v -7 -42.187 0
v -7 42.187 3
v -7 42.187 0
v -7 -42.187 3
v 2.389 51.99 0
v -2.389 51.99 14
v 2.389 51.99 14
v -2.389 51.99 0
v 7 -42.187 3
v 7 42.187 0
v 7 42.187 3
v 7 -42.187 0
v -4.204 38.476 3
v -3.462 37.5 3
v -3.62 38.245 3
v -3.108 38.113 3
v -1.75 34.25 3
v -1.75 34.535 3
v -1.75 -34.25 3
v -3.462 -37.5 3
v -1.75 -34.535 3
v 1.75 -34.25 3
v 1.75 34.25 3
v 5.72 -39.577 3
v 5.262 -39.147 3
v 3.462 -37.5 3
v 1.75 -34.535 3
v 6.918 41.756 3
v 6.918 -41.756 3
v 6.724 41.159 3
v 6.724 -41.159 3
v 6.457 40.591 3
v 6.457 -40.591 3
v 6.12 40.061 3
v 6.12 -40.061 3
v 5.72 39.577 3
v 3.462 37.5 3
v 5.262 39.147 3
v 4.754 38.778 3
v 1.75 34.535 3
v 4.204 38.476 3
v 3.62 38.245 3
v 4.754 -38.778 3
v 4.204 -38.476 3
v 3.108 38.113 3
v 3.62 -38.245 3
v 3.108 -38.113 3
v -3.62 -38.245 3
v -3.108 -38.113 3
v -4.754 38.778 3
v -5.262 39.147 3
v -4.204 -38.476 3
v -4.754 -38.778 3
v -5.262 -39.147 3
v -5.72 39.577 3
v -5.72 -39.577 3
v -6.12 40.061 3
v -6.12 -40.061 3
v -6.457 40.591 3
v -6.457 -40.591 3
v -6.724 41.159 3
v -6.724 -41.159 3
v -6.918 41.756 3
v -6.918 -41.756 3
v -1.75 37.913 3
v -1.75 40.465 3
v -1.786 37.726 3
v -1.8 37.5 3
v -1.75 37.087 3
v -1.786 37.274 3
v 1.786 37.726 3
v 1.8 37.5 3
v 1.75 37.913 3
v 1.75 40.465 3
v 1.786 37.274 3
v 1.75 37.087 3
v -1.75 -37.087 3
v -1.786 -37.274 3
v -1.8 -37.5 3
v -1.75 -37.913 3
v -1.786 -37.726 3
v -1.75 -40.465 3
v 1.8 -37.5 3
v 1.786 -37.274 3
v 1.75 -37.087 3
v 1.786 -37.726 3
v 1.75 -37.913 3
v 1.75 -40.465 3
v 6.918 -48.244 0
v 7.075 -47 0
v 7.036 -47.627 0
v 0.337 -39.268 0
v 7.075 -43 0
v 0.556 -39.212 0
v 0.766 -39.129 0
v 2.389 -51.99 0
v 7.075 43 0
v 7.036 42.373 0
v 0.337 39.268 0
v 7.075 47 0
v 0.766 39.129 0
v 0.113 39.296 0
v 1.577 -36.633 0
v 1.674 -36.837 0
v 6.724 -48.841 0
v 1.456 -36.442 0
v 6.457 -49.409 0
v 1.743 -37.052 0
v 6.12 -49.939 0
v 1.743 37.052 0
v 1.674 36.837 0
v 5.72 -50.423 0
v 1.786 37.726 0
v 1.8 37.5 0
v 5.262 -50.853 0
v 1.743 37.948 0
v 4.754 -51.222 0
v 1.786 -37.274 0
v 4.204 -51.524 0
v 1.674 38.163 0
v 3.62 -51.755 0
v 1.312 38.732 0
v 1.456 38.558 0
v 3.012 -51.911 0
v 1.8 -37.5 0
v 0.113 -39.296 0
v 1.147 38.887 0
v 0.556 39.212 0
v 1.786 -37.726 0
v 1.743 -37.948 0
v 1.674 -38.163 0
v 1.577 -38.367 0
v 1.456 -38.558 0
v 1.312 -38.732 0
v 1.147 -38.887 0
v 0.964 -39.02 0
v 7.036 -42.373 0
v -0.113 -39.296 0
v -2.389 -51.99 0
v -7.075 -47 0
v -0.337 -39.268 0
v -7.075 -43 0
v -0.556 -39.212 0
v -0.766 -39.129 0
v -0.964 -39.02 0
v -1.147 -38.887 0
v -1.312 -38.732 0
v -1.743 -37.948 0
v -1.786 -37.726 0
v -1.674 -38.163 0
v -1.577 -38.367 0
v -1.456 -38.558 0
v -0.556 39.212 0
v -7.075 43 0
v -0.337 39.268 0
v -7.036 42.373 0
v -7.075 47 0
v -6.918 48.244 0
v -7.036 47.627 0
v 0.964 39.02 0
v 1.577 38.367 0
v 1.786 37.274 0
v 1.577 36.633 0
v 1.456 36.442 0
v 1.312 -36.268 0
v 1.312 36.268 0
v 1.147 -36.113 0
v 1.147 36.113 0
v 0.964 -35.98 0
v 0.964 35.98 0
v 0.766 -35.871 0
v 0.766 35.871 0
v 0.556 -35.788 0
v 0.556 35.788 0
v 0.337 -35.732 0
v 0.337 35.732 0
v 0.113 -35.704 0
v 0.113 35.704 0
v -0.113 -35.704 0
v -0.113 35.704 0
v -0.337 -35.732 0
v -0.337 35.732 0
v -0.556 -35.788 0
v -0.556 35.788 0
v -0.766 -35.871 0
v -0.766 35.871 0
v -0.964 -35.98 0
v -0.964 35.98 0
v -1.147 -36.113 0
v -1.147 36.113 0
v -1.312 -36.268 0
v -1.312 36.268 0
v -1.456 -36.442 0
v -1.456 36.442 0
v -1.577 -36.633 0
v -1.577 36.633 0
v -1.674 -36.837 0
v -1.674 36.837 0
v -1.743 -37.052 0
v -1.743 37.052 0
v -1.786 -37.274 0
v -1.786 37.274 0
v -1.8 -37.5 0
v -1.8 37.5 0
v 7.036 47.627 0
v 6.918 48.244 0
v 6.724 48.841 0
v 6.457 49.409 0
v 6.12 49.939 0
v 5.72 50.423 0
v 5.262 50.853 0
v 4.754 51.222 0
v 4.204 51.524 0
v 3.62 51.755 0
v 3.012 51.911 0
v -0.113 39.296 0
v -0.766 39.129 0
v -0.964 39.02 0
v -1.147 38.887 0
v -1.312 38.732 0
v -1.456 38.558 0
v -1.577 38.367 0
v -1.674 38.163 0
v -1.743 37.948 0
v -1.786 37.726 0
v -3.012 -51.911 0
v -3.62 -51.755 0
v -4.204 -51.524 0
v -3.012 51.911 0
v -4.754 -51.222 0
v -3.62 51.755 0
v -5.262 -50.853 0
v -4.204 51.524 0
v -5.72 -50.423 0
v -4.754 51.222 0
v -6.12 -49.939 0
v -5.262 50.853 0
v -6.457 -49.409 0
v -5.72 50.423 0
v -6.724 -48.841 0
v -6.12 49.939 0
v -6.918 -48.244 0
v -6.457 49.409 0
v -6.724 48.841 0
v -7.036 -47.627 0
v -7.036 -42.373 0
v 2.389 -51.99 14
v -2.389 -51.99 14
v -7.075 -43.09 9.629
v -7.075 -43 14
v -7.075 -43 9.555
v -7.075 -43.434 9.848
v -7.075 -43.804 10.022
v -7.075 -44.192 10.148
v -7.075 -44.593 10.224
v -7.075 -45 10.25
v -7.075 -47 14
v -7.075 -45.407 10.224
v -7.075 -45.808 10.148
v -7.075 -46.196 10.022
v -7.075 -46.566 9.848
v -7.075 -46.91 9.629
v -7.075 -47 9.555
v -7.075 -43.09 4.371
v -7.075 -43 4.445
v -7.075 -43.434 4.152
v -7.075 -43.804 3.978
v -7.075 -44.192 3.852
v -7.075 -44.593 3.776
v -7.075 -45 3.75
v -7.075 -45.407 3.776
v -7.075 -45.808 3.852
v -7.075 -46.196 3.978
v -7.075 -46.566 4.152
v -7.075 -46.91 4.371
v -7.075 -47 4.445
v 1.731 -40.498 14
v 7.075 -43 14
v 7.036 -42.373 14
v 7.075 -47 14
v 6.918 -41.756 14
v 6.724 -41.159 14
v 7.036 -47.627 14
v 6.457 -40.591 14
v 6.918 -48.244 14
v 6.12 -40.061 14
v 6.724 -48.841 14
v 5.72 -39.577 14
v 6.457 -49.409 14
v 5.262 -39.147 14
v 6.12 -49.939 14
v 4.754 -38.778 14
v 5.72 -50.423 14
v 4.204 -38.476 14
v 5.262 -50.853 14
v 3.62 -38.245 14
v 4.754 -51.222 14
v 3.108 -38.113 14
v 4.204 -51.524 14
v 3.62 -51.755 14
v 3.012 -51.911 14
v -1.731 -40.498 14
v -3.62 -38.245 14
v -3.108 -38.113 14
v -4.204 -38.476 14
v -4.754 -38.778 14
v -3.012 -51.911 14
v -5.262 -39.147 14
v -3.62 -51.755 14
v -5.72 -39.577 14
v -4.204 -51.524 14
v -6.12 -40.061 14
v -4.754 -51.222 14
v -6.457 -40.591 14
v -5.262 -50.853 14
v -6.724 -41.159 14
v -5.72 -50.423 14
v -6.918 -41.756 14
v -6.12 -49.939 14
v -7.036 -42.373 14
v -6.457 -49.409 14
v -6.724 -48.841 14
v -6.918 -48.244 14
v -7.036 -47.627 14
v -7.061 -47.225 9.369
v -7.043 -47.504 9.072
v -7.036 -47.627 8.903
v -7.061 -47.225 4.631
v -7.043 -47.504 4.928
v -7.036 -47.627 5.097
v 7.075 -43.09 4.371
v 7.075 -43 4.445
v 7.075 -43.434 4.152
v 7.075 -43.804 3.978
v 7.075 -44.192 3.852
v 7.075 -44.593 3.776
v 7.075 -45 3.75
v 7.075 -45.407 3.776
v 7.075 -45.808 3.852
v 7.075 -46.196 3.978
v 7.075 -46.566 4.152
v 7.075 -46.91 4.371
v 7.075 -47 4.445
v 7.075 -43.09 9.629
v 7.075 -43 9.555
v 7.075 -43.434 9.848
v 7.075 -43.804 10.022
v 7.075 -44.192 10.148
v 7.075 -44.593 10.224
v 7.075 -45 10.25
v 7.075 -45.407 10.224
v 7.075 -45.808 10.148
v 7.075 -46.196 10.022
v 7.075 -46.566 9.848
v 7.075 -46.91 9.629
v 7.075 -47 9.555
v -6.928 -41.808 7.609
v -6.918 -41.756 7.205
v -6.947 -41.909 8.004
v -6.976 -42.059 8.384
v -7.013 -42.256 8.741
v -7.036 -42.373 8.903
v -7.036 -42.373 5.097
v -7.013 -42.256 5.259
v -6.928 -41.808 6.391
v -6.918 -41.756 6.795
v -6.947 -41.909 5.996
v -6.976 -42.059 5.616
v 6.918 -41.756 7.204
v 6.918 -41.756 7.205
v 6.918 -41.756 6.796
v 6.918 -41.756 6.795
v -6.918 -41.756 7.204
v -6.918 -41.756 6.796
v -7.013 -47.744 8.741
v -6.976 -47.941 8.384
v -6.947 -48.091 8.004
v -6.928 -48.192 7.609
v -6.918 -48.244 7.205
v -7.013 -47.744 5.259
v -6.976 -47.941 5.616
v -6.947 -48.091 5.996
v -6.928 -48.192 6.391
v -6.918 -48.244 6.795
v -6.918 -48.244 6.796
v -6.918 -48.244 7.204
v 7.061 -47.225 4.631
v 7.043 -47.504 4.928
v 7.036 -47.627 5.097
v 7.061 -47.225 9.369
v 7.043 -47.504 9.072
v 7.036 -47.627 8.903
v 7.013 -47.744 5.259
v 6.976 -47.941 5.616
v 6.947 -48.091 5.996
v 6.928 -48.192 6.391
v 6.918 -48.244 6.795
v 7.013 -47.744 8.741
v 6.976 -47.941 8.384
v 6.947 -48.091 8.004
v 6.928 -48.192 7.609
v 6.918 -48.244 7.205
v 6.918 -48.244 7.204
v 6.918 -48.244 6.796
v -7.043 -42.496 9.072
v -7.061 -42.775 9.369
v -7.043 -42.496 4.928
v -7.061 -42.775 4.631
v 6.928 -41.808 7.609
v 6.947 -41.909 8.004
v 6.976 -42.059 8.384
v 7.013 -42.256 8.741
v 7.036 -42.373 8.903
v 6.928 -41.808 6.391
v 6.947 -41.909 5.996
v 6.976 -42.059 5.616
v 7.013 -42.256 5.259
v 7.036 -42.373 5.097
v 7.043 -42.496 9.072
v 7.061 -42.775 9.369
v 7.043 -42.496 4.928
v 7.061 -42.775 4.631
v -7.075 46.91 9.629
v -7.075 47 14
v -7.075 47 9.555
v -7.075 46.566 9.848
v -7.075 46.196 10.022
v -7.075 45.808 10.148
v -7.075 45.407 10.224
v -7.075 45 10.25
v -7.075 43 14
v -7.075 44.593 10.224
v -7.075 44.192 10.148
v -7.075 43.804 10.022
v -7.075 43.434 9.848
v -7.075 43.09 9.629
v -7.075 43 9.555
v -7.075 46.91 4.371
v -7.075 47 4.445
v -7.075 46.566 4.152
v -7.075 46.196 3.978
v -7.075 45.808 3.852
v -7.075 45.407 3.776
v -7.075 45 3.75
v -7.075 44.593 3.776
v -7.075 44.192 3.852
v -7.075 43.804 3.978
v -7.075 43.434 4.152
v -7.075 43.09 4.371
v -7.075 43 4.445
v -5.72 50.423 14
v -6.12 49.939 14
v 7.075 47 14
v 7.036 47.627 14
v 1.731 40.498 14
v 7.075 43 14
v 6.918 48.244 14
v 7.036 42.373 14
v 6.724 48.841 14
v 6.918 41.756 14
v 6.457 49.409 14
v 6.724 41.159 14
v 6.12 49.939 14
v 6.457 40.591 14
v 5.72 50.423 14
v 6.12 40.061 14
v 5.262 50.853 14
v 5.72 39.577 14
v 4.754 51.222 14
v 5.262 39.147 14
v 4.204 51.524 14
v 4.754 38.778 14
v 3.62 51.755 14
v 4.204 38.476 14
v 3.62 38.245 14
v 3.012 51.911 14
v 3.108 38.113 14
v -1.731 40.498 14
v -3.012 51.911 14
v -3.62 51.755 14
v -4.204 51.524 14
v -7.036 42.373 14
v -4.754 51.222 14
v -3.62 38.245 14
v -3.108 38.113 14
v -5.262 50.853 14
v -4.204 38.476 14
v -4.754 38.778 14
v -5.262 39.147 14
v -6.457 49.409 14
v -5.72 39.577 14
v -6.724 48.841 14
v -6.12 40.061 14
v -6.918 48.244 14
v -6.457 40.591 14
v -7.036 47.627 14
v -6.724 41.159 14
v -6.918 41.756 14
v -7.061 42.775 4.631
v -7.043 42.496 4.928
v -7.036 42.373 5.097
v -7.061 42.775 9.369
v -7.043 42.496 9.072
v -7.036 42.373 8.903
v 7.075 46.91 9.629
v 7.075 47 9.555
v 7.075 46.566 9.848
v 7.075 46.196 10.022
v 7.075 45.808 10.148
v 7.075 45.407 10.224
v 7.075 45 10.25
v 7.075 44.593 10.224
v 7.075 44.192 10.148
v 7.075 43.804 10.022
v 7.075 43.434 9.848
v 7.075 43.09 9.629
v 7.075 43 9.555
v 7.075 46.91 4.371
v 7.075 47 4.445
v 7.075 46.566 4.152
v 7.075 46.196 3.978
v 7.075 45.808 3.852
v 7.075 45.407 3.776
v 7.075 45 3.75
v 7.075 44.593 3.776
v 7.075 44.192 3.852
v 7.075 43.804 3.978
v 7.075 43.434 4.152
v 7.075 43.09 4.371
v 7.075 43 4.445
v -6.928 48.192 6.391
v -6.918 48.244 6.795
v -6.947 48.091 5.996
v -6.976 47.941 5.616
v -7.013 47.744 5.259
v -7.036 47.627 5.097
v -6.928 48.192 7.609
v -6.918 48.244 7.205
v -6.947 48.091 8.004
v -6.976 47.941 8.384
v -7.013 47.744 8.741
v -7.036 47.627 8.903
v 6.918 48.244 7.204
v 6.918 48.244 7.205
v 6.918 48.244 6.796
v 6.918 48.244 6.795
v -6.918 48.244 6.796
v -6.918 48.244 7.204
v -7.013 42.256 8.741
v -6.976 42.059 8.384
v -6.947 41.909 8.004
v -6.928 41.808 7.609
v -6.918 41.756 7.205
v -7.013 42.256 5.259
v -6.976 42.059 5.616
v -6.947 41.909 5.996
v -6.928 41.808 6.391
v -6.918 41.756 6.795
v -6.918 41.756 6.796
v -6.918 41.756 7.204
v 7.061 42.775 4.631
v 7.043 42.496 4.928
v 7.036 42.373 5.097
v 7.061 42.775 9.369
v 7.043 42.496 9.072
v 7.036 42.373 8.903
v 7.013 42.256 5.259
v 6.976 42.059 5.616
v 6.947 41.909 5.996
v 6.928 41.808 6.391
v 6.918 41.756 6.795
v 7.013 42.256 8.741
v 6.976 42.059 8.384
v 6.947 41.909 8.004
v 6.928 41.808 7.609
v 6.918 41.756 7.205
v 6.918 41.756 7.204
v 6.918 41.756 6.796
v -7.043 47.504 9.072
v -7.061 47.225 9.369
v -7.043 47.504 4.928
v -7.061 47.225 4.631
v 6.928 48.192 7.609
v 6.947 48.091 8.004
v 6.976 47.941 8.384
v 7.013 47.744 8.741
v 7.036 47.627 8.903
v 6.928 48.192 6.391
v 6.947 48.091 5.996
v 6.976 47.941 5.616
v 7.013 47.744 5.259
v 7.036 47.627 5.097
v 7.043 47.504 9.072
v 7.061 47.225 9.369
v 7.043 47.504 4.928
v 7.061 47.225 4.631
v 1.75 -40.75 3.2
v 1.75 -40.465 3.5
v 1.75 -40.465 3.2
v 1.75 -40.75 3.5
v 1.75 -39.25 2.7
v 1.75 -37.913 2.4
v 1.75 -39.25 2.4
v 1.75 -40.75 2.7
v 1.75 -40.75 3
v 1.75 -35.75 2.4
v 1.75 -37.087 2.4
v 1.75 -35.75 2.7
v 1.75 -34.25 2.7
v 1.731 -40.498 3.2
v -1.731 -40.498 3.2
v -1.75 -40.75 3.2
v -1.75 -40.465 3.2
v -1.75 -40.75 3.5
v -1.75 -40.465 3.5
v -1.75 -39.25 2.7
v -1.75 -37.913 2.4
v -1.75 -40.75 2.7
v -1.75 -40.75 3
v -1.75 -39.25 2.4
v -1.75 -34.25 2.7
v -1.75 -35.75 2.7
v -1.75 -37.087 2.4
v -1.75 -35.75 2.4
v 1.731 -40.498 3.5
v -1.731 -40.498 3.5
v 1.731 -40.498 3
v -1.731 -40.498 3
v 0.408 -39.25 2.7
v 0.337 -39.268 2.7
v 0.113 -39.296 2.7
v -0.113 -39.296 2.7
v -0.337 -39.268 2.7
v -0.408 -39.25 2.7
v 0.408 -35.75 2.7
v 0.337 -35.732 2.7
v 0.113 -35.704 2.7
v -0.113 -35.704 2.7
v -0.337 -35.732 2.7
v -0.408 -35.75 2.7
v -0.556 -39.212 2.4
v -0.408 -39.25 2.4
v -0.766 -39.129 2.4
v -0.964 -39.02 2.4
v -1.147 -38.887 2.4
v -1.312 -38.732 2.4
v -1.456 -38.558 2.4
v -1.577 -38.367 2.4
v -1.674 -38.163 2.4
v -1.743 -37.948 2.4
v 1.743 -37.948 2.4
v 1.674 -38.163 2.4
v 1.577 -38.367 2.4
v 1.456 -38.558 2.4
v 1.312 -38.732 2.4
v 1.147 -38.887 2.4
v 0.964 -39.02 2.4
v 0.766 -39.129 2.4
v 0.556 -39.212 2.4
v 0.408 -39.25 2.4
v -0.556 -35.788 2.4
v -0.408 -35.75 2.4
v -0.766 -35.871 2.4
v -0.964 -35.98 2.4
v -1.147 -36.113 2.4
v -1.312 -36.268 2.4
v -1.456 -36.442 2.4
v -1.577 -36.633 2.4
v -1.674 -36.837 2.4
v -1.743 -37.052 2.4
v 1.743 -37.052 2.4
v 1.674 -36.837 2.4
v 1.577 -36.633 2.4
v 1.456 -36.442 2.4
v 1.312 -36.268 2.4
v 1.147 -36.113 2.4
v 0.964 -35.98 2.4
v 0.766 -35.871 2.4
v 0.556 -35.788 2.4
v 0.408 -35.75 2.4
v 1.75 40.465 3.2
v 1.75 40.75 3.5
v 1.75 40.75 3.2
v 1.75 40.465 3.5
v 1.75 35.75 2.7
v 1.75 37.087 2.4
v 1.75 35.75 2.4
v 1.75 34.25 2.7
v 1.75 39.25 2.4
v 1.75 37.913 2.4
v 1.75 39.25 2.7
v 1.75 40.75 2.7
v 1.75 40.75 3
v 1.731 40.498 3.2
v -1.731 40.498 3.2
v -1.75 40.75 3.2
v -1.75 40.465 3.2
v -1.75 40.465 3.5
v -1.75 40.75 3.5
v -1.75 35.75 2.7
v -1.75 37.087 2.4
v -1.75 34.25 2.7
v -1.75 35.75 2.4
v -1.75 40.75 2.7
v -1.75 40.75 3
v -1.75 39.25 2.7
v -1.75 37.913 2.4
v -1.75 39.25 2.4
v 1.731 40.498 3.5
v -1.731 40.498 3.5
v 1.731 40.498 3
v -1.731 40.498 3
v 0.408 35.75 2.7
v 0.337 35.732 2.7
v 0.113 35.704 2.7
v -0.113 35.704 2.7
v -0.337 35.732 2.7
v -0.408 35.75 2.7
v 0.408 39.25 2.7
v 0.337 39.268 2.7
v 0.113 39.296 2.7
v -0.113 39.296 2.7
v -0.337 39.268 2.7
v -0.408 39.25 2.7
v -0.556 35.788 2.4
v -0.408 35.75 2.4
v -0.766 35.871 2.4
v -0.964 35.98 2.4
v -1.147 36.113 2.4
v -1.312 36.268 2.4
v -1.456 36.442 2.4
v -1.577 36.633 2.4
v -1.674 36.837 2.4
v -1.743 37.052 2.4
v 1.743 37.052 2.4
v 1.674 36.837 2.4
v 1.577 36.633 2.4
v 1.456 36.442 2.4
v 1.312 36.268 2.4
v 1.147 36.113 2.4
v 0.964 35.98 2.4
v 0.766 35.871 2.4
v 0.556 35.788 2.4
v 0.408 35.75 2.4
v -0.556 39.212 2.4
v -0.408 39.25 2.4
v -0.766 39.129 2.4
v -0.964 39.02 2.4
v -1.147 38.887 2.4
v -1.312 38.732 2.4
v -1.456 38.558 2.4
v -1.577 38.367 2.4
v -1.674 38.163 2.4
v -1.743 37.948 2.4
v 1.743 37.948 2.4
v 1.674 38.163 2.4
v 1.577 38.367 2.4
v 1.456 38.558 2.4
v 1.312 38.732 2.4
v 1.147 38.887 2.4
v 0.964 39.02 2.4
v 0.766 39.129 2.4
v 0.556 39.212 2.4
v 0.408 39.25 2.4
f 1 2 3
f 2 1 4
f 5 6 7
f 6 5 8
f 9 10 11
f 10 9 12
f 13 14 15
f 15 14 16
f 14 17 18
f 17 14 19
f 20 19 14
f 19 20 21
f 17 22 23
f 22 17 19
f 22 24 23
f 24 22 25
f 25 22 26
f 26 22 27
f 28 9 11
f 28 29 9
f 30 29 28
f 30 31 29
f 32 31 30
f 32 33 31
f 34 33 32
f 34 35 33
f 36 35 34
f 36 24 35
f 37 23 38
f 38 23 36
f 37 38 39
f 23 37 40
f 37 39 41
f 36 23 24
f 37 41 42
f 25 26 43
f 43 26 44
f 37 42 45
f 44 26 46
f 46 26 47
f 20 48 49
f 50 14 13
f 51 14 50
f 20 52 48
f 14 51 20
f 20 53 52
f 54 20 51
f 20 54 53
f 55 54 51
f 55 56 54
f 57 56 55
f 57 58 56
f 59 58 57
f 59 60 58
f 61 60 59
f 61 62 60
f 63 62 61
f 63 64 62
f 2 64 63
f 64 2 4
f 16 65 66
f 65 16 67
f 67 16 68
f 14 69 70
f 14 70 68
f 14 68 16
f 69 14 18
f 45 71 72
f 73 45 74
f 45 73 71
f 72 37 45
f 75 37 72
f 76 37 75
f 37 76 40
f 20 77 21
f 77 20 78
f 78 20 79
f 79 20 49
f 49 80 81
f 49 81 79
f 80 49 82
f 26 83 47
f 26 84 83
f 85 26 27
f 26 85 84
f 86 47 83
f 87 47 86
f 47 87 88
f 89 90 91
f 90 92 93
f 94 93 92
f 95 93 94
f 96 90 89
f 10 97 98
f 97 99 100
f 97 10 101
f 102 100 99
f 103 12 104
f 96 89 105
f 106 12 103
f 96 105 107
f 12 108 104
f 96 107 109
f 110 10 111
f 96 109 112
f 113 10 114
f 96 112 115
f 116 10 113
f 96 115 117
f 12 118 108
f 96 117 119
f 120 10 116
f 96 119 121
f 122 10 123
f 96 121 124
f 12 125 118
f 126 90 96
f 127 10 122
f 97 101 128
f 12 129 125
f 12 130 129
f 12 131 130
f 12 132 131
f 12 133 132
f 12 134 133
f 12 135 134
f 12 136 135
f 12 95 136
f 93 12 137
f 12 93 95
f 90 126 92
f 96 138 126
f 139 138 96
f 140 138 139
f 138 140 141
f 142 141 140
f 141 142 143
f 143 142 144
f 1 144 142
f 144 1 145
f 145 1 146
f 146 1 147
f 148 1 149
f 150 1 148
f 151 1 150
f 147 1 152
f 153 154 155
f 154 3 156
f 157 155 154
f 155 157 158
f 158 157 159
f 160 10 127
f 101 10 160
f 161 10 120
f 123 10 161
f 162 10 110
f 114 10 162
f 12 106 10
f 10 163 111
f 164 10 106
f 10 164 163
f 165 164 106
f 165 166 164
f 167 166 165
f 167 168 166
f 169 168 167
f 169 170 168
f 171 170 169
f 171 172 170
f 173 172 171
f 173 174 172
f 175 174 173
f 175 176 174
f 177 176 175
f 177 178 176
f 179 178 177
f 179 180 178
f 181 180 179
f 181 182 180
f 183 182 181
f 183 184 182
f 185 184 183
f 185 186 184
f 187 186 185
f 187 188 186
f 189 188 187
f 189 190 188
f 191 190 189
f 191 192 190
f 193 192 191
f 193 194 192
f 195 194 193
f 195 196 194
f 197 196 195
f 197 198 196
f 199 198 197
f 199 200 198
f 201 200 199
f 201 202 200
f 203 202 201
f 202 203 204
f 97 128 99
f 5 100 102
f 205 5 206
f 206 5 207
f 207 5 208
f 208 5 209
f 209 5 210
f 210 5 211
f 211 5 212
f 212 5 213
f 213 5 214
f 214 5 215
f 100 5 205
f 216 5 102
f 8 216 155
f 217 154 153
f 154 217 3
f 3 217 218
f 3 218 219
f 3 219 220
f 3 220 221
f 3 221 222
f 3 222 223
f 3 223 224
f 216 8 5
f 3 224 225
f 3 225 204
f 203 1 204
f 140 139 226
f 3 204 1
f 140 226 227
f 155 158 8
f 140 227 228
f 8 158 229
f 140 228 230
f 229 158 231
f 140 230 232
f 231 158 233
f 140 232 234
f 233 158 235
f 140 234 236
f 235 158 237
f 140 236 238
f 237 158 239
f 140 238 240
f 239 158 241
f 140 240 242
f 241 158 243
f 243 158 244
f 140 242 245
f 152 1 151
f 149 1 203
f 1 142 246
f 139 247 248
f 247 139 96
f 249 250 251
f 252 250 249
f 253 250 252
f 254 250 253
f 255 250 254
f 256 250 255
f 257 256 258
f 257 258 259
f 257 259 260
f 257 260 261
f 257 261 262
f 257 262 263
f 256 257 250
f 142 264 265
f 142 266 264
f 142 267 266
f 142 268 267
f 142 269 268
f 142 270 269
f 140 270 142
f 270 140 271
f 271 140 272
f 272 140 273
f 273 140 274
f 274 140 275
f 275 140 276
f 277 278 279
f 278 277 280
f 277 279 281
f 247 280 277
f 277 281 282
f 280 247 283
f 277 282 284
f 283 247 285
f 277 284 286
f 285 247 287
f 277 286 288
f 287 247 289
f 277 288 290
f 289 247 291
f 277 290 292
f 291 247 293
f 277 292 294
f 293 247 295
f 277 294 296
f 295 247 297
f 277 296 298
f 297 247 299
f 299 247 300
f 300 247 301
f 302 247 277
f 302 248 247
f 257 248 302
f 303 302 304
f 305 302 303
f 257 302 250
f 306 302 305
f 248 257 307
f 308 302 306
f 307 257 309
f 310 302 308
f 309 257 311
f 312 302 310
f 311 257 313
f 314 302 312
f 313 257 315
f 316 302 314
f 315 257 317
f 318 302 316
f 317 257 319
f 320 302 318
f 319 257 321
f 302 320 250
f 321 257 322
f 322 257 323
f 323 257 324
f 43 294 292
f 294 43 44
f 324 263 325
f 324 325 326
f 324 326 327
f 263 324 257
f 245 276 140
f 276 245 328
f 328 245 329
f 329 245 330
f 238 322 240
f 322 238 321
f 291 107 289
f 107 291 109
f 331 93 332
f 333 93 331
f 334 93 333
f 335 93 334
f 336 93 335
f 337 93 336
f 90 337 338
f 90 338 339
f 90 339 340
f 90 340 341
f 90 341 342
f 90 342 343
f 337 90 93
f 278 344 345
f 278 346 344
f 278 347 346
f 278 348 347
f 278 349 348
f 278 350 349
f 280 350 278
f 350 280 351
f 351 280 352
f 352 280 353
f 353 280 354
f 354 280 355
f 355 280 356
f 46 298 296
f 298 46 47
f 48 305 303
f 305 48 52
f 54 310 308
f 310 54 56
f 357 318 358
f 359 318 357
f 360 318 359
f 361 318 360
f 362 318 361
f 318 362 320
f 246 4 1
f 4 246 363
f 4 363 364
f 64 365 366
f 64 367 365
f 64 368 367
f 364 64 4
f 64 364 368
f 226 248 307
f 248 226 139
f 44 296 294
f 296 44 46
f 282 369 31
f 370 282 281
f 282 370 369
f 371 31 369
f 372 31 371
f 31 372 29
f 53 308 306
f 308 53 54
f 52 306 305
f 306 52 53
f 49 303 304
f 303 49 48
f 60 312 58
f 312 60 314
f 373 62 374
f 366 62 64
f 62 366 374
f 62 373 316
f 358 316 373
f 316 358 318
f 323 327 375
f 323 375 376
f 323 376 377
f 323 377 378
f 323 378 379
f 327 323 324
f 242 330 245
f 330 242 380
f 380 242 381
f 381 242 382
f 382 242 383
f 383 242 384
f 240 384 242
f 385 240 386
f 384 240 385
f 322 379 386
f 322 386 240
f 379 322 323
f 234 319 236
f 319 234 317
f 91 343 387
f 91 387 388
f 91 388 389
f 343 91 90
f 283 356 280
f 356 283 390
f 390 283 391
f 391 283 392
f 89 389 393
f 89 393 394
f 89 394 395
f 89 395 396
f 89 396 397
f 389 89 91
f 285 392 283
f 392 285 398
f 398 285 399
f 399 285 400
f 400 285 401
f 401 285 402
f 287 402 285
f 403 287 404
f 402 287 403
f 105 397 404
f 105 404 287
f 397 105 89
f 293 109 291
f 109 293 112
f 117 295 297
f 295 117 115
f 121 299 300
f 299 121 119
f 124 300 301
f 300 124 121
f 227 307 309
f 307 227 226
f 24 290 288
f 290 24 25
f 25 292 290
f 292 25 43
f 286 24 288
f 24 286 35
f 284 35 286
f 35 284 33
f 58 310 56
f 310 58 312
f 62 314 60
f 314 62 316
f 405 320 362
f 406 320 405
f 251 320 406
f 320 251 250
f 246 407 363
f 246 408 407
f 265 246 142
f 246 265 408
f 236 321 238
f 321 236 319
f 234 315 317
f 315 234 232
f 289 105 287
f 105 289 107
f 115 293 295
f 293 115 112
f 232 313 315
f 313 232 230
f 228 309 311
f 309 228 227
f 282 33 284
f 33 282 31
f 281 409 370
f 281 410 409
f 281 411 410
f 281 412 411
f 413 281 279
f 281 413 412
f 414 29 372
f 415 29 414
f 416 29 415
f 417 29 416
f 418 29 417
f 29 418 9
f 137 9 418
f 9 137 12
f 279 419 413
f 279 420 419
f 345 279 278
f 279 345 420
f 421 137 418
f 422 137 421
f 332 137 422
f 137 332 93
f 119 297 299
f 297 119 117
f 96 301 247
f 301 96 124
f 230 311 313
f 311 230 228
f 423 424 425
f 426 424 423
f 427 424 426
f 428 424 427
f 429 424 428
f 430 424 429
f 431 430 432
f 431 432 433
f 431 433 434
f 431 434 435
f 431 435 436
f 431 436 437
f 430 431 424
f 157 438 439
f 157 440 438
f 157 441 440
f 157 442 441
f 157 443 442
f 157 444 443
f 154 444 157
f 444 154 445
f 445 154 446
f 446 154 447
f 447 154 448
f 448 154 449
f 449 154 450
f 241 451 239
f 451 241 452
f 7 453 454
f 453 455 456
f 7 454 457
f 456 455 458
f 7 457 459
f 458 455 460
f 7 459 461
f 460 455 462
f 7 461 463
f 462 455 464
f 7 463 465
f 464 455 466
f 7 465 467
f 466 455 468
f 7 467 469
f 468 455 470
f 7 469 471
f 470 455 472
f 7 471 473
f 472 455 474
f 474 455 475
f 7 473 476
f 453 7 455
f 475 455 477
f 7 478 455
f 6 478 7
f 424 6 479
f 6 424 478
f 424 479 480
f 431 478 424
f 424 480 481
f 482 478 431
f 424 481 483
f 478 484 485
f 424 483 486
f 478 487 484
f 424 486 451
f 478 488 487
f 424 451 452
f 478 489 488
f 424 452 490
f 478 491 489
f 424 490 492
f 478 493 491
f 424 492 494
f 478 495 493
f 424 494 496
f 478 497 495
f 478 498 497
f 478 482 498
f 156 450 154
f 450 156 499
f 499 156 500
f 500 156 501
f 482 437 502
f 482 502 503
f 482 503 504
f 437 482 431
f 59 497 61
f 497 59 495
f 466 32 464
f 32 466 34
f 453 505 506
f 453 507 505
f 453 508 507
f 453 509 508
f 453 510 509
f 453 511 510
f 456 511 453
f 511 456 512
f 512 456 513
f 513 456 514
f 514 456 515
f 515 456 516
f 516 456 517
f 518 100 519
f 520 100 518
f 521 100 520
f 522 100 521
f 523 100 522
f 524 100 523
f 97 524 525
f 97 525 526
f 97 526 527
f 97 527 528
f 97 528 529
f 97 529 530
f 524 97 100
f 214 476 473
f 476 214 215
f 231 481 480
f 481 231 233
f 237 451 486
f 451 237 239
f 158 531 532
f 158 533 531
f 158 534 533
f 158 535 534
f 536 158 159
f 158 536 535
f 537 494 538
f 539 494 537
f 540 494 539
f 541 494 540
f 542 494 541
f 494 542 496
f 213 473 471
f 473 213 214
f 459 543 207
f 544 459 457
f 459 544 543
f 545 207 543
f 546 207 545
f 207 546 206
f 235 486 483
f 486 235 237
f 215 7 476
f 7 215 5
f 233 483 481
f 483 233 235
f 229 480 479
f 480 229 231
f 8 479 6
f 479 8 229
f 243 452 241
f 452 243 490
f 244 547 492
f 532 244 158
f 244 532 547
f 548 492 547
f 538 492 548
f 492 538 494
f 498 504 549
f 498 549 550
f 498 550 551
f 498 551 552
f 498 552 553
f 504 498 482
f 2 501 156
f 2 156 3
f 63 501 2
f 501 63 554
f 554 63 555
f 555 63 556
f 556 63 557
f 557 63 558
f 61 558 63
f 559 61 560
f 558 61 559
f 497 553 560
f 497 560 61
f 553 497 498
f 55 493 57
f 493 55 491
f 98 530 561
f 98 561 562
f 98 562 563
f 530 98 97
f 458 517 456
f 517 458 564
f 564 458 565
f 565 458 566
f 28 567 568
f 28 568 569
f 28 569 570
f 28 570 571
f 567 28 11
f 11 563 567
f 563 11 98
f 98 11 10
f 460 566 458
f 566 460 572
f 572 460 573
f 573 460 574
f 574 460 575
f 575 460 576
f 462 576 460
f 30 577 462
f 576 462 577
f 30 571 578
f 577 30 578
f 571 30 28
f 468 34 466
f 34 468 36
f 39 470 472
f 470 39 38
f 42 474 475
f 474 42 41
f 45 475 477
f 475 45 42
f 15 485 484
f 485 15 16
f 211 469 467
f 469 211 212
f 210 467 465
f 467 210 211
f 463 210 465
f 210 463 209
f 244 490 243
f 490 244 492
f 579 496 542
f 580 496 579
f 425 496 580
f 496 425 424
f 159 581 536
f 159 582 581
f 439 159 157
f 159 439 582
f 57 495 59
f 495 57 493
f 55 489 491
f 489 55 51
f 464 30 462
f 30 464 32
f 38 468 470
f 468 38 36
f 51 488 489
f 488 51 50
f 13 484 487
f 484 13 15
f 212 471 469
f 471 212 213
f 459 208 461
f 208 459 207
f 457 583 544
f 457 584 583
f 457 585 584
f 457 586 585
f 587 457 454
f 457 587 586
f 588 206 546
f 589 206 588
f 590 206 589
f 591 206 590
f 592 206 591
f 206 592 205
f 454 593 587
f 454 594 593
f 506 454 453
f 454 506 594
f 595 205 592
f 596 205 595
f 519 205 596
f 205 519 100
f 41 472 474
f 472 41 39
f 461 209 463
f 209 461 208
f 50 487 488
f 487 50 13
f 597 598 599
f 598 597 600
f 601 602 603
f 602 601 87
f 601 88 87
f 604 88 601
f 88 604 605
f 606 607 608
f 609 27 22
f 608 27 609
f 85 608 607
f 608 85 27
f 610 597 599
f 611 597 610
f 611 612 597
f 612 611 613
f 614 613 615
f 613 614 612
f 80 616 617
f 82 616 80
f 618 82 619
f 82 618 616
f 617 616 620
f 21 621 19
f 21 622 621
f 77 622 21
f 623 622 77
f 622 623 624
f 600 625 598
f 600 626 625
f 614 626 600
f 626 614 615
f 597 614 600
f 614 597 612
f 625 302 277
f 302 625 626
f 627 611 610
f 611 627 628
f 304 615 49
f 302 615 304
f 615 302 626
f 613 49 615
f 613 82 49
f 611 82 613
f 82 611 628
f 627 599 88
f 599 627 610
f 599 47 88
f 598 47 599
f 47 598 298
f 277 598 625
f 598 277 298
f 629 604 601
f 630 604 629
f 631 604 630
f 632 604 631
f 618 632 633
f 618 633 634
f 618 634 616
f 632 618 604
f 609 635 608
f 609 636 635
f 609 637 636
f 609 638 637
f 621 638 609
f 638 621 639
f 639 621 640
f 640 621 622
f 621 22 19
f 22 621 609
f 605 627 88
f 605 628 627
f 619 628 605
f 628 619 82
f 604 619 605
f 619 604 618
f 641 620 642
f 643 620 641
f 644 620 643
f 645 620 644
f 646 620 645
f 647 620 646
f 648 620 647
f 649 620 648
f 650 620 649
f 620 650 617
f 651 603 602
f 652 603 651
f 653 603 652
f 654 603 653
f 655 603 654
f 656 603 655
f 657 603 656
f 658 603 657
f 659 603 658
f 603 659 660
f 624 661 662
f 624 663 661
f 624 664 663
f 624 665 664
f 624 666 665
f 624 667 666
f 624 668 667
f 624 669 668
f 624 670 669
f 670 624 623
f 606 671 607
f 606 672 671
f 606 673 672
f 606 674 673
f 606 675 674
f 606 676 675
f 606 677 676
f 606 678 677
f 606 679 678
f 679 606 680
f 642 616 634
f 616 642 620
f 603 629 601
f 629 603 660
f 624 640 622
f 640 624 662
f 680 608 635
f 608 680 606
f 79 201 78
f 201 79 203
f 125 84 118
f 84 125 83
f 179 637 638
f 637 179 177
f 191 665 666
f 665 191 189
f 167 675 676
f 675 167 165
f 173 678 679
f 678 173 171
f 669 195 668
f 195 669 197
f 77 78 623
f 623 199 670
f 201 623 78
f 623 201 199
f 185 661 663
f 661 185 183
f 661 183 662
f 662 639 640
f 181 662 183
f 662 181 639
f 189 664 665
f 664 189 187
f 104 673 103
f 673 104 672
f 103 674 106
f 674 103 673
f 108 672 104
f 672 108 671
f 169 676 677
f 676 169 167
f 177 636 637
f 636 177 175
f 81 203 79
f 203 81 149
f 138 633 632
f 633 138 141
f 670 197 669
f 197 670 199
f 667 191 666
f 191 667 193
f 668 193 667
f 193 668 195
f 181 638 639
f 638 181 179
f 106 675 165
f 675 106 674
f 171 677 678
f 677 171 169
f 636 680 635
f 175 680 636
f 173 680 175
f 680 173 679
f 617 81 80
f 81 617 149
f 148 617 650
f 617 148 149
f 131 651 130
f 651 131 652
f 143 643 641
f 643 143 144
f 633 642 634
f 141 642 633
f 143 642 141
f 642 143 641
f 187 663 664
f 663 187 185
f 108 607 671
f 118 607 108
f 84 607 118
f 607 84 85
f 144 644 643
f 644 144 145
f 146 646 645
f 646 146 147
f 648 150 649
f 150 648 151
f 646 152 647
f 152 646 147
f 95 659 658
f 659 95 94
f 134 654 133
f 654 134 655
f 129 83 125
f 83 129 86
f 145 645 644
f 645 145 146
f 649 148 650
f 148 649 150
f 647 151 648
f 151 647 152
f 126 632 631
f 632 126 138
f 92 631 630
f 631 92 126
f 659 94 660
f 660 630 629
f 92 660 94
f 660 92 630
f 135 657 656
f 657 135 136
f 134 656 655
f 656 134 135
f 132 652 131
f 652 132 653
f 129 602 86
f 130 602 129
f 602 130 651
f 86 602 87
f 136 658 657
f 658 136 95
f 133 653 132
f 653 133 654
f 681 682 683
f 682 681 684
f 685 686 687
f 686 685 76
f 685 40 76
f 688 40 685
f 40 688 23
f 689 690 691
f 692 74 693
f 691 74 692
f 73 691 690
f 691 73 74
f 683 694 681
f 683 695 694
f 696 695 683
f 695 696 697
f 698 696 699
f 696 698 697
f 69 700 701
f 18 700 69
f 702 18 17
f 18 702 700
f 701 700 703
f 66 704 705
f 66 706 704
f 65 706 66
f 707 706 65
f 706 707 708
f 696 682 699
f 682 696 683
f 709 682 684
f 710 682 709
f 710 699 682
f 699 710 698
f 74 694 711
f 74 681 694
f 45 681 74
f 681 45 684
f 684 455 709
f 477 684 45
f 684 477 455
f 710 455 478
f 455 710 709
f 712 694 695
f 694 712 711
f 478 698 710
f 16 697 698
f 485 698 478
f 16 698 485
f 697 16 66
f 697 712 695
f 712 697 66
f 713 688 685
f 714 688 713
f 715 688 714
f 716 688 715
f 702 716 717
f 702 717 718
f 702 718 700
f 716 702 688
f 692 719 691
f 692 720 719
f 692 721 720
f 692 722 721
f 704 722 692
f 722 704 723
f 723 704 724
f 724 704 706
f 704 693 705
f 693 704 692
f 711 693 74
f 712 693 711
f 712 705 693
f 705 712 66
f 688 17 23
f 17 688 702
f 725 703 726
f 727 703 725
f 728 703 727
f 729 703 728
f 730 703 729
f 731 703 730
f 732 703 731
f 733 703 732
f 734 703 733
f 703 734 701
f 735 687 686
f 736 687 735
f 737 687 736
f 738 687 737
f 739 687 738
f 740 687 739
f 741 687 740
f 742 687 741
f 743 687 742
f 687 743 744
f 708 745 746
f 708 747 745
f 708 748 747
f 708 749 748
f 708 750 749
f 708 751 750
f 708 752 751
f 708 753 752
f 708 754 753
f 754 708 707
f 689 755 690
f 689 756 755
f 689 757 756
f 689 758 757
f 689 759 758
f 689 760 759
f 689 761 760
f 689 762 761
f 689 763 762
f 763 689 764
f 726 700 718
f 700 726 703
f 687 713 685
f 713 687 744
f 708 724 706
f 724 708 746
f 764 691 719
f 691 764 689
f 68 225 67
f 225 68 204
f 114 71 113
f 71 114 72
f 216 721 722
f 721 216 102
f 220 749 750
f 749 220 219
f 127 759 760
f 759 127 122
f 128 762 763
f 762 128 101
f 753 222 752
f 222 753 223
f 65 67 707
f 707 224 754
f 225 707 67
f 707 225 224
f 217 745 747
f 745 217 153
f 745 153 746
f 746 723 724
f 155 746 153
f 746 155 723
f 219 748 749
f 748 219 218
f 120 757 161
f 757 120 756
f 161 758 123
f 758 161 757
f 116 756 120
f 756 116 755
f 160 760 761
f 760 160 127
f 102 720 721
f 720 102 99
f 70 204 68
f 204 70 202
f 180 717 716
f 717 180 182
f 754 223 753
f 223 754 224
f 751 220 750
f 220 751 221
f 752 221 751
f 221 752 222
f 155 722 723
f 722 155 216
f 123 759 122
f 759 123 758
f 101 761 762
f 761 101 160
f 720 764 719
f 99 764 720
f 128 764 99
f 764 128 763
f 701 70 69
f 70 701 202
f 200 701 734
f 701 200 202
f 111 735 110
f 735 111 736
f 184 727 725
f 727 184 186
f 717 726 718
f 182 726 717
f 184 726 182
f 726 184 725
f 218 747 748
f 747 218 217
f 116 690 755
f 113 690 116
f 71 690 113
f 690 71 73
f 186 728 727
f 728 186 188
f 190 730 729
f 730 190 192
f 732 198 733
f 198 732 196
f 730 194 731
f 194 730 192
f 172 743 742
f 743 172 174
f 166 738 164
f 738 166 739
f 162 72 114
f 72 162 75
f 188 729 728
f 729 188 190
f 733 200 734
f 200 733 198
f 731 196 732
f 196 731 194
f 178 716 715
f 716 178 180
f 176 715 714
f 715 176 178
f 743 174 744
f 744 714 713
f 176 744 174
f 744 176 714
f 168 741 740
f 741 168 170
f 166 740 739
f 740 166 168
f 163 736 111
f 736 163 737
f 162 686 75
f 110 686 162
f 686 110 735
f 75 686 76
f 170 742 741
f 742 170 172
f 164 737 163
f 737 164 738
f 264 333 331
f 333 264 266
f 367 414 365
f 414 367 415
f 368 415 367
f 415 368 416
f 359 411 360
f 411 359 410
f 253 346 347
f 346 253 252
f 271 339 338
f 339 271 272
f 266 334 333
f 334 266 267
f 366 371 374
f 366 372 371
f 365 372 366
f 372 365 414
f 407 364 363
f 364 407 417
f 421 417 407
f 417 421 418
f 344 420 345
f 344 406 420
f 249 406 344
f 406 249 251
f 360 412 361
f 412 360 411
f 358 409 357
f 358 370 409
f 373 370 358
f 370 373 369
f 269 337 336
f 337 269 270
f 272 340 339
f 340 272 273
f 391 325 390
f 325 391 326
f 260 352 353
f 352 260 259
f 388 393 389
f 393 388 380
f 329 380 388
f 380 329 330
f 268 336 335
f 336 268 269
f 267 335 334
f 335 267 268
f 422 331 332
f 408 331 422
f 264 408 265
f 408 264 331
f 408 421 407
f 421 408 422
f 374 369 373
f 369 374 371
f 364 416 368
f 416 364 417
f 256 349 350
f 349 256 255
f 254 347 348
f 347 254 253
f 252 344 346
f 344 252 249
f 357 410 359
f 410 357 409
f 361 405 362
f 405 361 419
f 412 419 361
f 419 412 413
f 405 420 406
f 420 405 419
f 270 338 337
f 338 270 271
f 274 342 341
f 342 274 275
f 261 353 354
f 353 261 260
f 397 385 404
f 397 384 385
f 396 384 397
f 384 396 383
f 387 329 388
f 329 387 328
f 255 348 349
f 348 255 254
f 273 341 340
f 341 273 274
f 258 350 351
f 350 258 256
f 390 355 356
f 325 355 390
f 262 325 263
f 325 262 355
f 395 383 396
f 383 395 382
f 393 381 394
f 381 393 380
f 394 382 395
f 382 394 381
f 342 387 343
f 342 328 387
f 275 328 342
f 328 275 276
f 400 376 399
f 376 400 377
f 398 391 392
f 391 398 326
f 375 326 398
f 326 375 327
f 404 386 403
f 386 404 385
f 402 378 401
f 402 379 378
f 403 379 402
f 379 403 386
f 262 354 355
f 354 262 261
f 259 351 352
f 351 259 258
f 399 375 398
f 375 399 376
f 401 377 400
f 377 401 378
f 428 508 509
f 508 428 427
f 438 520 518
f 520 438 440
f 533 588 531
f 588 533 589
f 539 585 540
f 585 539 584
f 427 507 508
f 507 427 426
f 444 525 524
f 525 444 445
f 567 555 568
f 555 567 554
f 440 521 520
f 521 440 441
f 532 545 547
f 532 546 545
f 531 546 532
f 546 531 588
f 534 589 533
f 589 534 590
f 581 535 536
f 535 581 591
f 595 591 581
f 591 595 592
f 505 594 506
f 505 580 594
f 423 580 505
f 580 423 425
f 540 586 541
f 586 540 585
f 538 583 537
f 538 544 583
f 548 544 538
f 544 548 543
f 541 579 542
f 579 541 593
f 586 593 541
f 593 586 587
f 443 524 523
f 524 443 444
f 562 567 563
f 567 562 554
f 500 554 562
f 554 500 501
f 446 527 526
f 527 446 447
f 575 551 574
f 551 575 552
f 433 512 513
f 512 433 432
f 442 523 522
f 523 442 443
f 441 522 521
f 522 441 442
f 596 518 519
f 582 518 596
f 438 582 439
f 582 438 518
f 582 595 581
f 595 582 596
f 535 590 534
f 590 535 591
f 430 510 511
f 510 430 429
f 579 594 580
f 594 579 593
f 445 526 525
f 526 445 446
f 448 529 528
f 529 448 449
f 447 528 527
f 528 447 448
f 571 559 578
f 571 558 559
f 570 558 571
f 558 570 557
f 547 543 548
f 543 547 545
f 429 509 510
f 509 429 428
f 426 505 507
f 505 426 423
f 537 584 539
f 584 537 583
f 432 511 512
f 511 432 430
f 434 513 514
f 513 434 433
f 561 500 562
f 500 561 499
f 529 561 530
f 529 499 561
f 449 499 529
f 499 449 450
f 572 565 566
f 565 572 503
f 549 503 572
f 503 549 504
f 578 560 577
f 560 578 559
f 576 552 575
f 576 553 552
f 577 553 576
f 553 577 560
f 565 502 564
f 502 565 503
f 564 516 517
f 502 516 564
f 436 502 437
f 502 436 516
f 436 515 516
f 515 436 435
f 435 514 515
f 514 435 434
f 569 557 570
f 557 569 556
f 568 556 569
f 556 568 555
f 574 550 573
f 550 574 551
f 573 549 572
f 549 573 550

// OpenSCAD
$fn = 50;


difference() {
	union() {
		hull() {
			translate(v = [-2.0000000000, 47.0000000000, 0]) {
				cylinder(h = 3, r = 5);
			}
			translate(v = [2.0000000000, 47.0000000000, 0]) {
				cylinder(h = 3, r = 5);
			}
			translate(v = [-2.0000000000, -47.0000000000, 0]) {
				cylinder(h = 3, r = 5);
			}
			translate(v = [2.0000000000, -47.0000000000, 0]) {
				cylinder(h = 3, r = 5);
			}
		}
		translate(v = [0, -45.0000000000, 0]) {
			hull() {
				translate(v = [-2.0750000000, 2.0000000000, 0]) {
					cylinder(h = 14, r = 5);
				}
				translate(v = [2.0750000000, 2.0000000000, 0]) {
					cylinder(h = 14, r = 5);
				}
				translate(v = [-2.0750000000, -2.0000000000, 0]) {
					cylinder(h = 14, r = 5);
				}
				translate(v = [2.0750000000, -2.0000000000, 0]) {
					cylinder(h = 14, r = 5);
				}
			}
		}
		translate(v = [0, 45.0000000000, 0]) {
			hull() {
				translate(v = [-2.0750000000, 2.0000000000, 0]) {
					cylinder(h = 14, r = 5);
				}
				translate(v = [2.0750000000, 2.0000000000, 0]) {
					cylinder(h = 14, r = 5);
				}
				translate(v = [-2.0750000000, -2.0000000000, 0]) {
					cylinder(h = 14, r = 5);
				}
				translate(v = [2.0750000000, -2.0000000000, 0]) {
					cylinder(h = 14, r = 5);
				}
			}
		}
	}
	union() {
		translate(v = [0, -37.5000000000, -3]) {
			rotate(a = [0, 180, 0]) {
				difference() {
					union() {
						translate(v = [0, 0, -6.5000000000]) {
							rotate(a = [0, 0, 0]) {
								difference() {
									union() {
										#translate(v = [-1.7500000000, -3.2500000000, -250.3000000000]) {
											cube(size = [3.5000000000, 6.5000000000, 0.3000000000]);
										}
										#translate(v = [-1.7500000000, -1.7500000000, -250.6000000000]) {
											cube(size = [3.5000000000, 3.5000000000, 0.3000000000]);
										}
										#translate(v = [-1.7500000000, -3.2500000000, 0]) {
											cube(size = [3.5000000000, 6.5000000000, 0.3000000000]);
										}
										#translate(v = [-1.7500000000, -1.7500000000, 0.3000000000]) {
											cube(size = [3.5000000000, 3.5000000000, 0.3000000000]);
										}
										translate(v = [0, 0, -250]) {
											#linear_extrude(height = 250) {
												polygon(points = [[3.4620000000, 0.0000000000], [1.7310000000, 2.9981799479], [-1.7310000000, 2.9981799479], [-3.4620000000, 0.0000000000], [-1.7310000000, -2.9981799479], [1.7310000000, -2.9981799479]]);
											}
										}
										#translate(v = [-1.7500000000, -3.2500000000, -250.3000000000]) {
											cube(size = [3.5000000000, 6.5000000000, 0.3000000000]);
										}
										#translate(v = [-1.7500000000, -1.7500000000, -250.6000000000]) {
											cube(size = [3.5000000000, 3.5000000000, 0.3000000000]);
										}
										#translate(v = [-1.7500000000, -3.2500000000, 0]) {
											cube(size = [3.5000000000, 6.5000000000, 0.3000000000]);
										}
										#translate(v = [-1.7500000000, -1.7500000000, 0.3000000000]) {
											cube(size = [3.5000000000, 3.5000000000, 0.3000000000]);
										}
										#translate(v = [-1.7500000000, -3.2500000000, -250.3000000000]) {
											cube(size = [3.5000000000, 6.5000000000, 0.3000000000]);
										}
										#translate(v = [-1.7500000000, -1.7500000000, -250.6000000000]) {
											cube(size = [3.5000000000, 3.5000000000, 0.3000000000]);
										}
										#translate(v = [-1.7500000000, -3.2500000000, 0]) {
											cube(size = [3.5000000000, 6.5000000000, 0.3000000000]);
										}
										#translate(v = [-1.7500000000, -1.7500000000, 0.3000000000]) {
											cube(size = [3.5000000000, 3.5000000000, 0.3000000000]);
										}
									}
									union();
								}
							}
						}
						translate(v = [0, 0, -6.0000000000]) {
							rotate(a = [0, 0, 0]) {
								difference() {
									union() {
										#translate(v = [-1.7500000000, -3.2500000000, -250.3000000000]) {
											cube(size = [3.5000000000, 6.5000000000, 0.3000000000]);
										}
										#translate(v = [-1.7500000000, -1.7500000000, -250.6000000000]) {
											cube(size = [3.5000000000, 3.5000000000, 0.3000000000]);
										}
										#translate(v = [-1.7500000000, -3.2500000000, 0]) {
											cube(size = [3.5000000000, 6.5000000000, 0.3000000000]);
										}
										#translate(v = [-1.7500000000, -1.7500000000, 0.3000000000]) {
											cube(size = [3.5000000000, 3.5000000000, 0.3000000000]);
										}
										translate(v = [0, 0, -250]) {
											#linear_extrude(height = 250) {
												polygon(points = [[3.4620000000, 0.0000000000], [1.7310000000, 2.9981799479], [-1.7310000000, 2.9981799479], [-3.4620000000, 0.0000000000], [-1.7310000000, -2.9981799479], [1.7310000000, -2.9981799479]]);
											}
										}
										#translate(v = [-1.7500000000, -3.2500000000, -250.3000000000]) {
											cube(size = [3.5000000000, 6.5000000000, 0.3000000000]);
										}
										#translate(v = [-1.7500000000, -1.7500000000, -250.6000000000]) {
											cube(size = [3.5000000000, 3.5000000000, 0.3000000000]);
										}
										#translate(v = [-1.7500000000, -3.2500000000, 0]) {
											cube(size = [3.5000000000, 6.5000000000, 0.3000000000]);
										}
										#translate(v = [-1.7500000000, -1.7500000000, 0.3000000000]) {
											cube(size = [3.5000000000, 3.5000000000, 0.3000000000]);
										}
										#translate(v = [-1.7500000000, -3.2500000000, -250.3000000000]) {
											cube(size = [3.5000000000, 6.5000000000, 0.3000000000]);
										}
										#translate(v = [-1.7500000000, -1.7500000000, -250.6000000000]) {
											cube(size = [3.5000000000, 3.5000000000, 0.3000000000]);
										}
										#translate(v = [-1.7500000000, -3.2500000000, 0]) {
											cube(size = [3.5000000000, 6.5000000000, 0.3000000000]);
										}
										#translate(v = [-1.7500000000, -1.7500000000, 0.3000000000]) {
											cube(size = [3.5000000000, 3.5000000000, 0.3000000000]);
										}
									}
									union();
								}
							}
						}
						translate(v = [0, 0, -6.5000000000]) {
							rotate(a = [0, 0, 0]) {
								difference() {
									union() {
										#translate(v = [-1.7500000000, -3.2500000000, -250.3000000000]) {
											cube(size = [3.5000000000, 6.5000000000, 0.3000000000]);
										}
										#translate(v = [-1.7500000000, -1.7500000000, -250.6000000000]) {
											cube(size = [3.5000000000, 3.5000000000, 0.3000000000]);
										}
										#translate(v = [-1.7500000000, -3.2500000000, 0]) {
											cube(size = [3.5000000000, 6.5000000000, 0.3000000000]);
										}
										#translate(v = [-1.7500000000, -1.7500000000, 0.3000000000]) {
											cube(size = [3.5000000000, 3.5000000000, 0.3000000000]);
										}
										translate(v = [0, 0, -250]) {
											#linear_extrude(height = 250) {
												polygon(points = [[3.4620000000, 0.0000000000], [1.7310000000, 2.9981799479], [-1.7310000000, 2.9981799479], [-3.4620000000, 0.0000000000], [-1.7310000000, -2.9981799479], [1.7310000000, -2.9981799479]]);
											}
										}
										#translate(v = [-1.7500000000, -3.2500000000, -250.3000000000]) {
											cube(size = [3.5000000000, 6.5000000000, 0.3000000000]);
										}
										#translate(v = [-1.7500000000, -1.7500000000, -250.6000000000]) {
											cube(size = [3.5000000000, 3.5000000000, 0.3000000000]);
										}
										#translate(v = [-1.7500000000, -3.2500000000, 0]) {
											cube(size = [3.5000000000, 6.5000000000, 0.3000000000]);
										}
										#translate(v = [-1.7500000000, -1.7500000000, 0.3000000000]) {
											cube(size = [3.5000000000, 3.5000000000, 0.3000000000]);
										}
										#translate(v = [-1.7500000000, -3.2500000000, -250.3000000000]) {
											cube(size = [3.5000000000, 6.5000000000, 0.3000000000]);
										}
										#translate(v = [-1.7500000000, -1.7500000000, -250.6000000000]) {
											cube(size = [3.5000000000, 3.5000000000, 0.3000000000]);
										}
										#translate(v = [-1.7500000000, -3.2500000000, 0]) {
											cube(size = [3.5000000000, 6.5000000000, 0.3000000000]);
										}
										#translate(v = [-1.7500000000, -1.7500000000, 0.3000000000]) {
											cube(size = [3.5000000000, 3.5000000000, 0.3000000000]);
										}
									}
									union();
								}
							}
						}
						#translate(v = [0, 0, -9.0000000000]) {
							cylinder(h = 9, r = 1.5000000000);
						}
						#translate(v = [0, 0, -1.9000000000]) {
							cylinder(h = 1.9000000000, r1 = 1.8000000000, r2 = 3.6000000000);
						}
						#translate(v = [0, 0, -9.0000000000]) {
							cylinder(h = 9, r = 1.8000000000);
						}
						#translate(v = [0, 0, -9.0000000000]) {
							cylinder(h = 9, r = 1.5000000000);
						}
					}
					union();
				}
			}
		}
		translate(v = [0, 37.5000000000, -3]) {
			rotate(a = [0, 180, 0]) {
				difference() {
					union() {
						translate(v = [0, 0, -6.5000000000]) {
							rotate(a = [0, 0, 0]) {
								difference() {
									union() {
										#translate(v = [-1.7500000000, -3.2500000000, -250.3000000000]) {
											cube(size = [3.5000000000, 6.5000000000, 0.3000000000]);
										}
										#translate(v = [-1.7500000000, -1.7500000000, -250.6000000000]) {
											cube(size = [3.5000000000, 3.5000000000, 0.3000000000]);
										}
										#translate(v = [-1.7500000000, -3.2500000000, 0]) {
											cube(size = [3.5000000000, 6.5000000000, 0.3000000000]);
										}
										#translate(v = [-1.7500000000, -1.7500000000, 0.3000000000]) {
											cube(size = [3.5000000000, 3.5000000000, 0.3000000000]);
										}
										translate(v = [0, 0, -250]) {
											#linear_extrude(height = 250) {
												polygon(points = [[3.4620000000, 0.0000000000], [1.7310000000, 2.9981799479], [-1.7310000000, 2.9981799479], [-3.4620000000, 0.0000000000], [-1.7310000000, -2.9981799479], [1.7310000000, -2.9981799479]]);
											}
										}
										#translate(v = [-1.7500000000, -3.2500000000, -250.3000000000]) {
											cube(size = [3.5000000000, 6.5000000000, 0.3000000000]);
										}
										#translate(v = [-1.7500000000, -1.7500000000, -250.6000000000]) {
											cube(size = [3.5000000000, 3.5000000000, 0.3000000000]);
										}
										#translate(v = [-1.7500000000, -3.2500000000, 0]) {
											cube(size = [3.5000000000, 6.5000000000, 0.3000000000]);
										}
										#translate(v = [-1.7500000000, -1.7500000000, 0.3000000000]) {
											cube(size = [3.5000000000, 3.5000000000, 0.3000000000]);
										}
										#translate(v = [-1.7500000000, -3.2500000000, -250.3000000000]) {
											cube(size = [3.5000000000, 6.5000000000, 0.3000000000]);
										}
										#translate(v = [-1.7500000000, -1.7500000000, -250.6000000000]) {
											cube(size = [3.5000000000, 3.5000000000, 0.3000000000]);
										}
										#translate(v = [-1.7500000000, -3.2500000000, 0]) {
											cube(size = [3.5000000000, 6.5000000000, 0.3000000000]);
										}
										#translate(v = [-1.7500000000, -1.7500000000, 0.3000000000]) {
											cube(size = [3.5000000000, 3.5000000000, 0.3000000000]);
										}
									}
									union();
								}
							}
						}
						translate(v = [0, 0, -6.0000000000]) {
							rotate(a = [0, 0, 0]) {
								difference() {
									union() {
										#translate(v = [-1.7500000000, -3.2500000000, -250.3000000000]) {
											cube(size = [3.5000000000, 6.5000000000, 0.3000000000]);
										}
										#translate(v = [-1.7500000000, -1.7500000000, -250.6000000000]) {
											cube(size = [3.5000000000, 3.5000000000, 0.3000000000]);
										}
										#translate(v = [-1.7500000000, -3.2500000000, 0]) {
											cube(size = [3.5000000000, 6.5000000000, 0.3000000000]);
										}
										#translate(v = [-1.7500000000, -1.7500000000, 0.3000000000]) {
											cube(size = [3.5000000000, 3.5000000000, 0.3000000000]);
										}
										translate(v = [0, 0, -250]) {
											#linear_extrude(height = 250) {
												polygon(points = [[3.4620000000, 0.0000000000], [1.7310000000, 2.9981799479], [-1.7310000000, 2.9981799479], [-3.4620000000, 0.0000000000], [-1.7310000000, -2.9981799479], [1.7310000000, -2.9981799479]]);
											}
										}
										#translate(v = [-1.7500000000, -3.2500000000, -250.3000000000]) {
											cube(size = [3.5000000000, 6.5000000000, 0.3000000000]);
										}
										#translate(v = [-1.7500000000, -1.7500000000, -250.6000000000]) {
											cube(size = [3.5000000000, 3.5000000000, 0.3000000000]);
										}
										#translate(v = [-1.7500000000, -3.2500000000, 0]) {
											cube(size = [3.5000000000, 6.5000000000, 0.3000000000]);
										}
										#translate(v = [-1.7500000000, -1.7500000000, 0.3000000000]) {
											cube(size = [3.5000000000, 3.5000000000, 0.3000000000]);
										}
										#translate(v = [-1.7500000000, -3.2500000000, -250.3000000000]) {
											cube(size = [3.5000000000, 6.5000000000, 0.3000000000]);
										}
										#translate(v = [-1.7500000000, -1.7500000000, -250.6000000000]) {
											cube(size = [3.5000000000, 3.5000000000, 0.3000000000]);
										}
										#translate(v = [-1.7500000000, -3.2500000000, 0]) {
											cube(size = [3.5000000000, 6.5000000000, 0.3000000000]);
										}
										#translate(v = [-1.7500000000, -1.7500000000, 0.3000000000]) {
											cube(size = [3.5000000000, 3.5000000000, 0.3000000000]);
										}
									}
									union();
								}
							}
						}
						translate(v = [0, 0, -6.5000000000]) {
							rotate(a = [0, 0, 0]) {
								difference() {
									union() {
										#translate(v = [-1.7500000000, -3.2500000000, -250.3000000000]) {
											cube(size = [3.5000000000, 6.5000000000, 0.3000000000]);
										}
										#translate(v = [-1.7500000000, -1.7500000000, -250.6000000000]) {
											cube(size = [3.5000000000, 3.5000000000, 0.3000000000]);
										}
										#translate(v = [-1.7500000000, -3.2500000000, 0]) {
											cube(size = [3.5000000000, 6.5000000000, 0.3000000000]);
										}
										#translate(v = [-1.7500000000, -1.7500000000, 0.3000000000]) {
											cube(size = [3.5000000000, 3.5000000000, 0.3000000000]);
										}
										translate(v = [0, 0, -250]) {
											#linear_extrude(height = 250) {
												polygon(points = [[3.4620000000, 0.0000000000], [1.7310000000, 2.9981799479], [-1.7310000000, 2.9981799479], [-3.4620000000, 0.0000000000], [-1.7310000000, -2.9981799479], [1.7310000000, -2.9981799479]]);
											}
										}
										#translate(v = [-1.7500000000, -3.2500000000, -250.3000000000]) {
											cube(size = [3.5000000000, 6.5000000000, 0.3000000000]);
										}
										#translate(v = [-1.7500000000, -1.7500000000, -250.6000000000]) {
											cube(size = [3.5000000000, 3.5000000000, 0.3000000000]);
										}
										#translate(v = [-1.7500000000, -3.2500000000, 0]) {
											cube(size = [3.5000000000, 6.5000000000, 0.3000000000]);
										}
										#translate(v = [-1.7500000000, -1.7500000000, 0.3000000000]) {
											cube(size = [3.5000000000, 3.5000000000, 0.3000000000]);
										}
										#translate(v = [-1.7500000000, -3.2500000000, -250.3000000000]) {
											cube(size = [3.5000000000, 6.5000000000, 0.3000000000]);
										}
										#translate(v = [-1.7500000000, -1.7500000000, -250.6000000000]) {
											cube(size = [3.5000000000, 3.5000000000, 0.3000000000]);
										}
										#translate(v = [-1.7500000000, -3.2500000000, 0]) {
											cube(size = [3.5000000000, 6.5000000000, 0.3000000000]);
										}
										#translate(v = [-1.7500000000, -1.7500000000, 0.3000000000]) {
											cube(size = [3.5000000000, 3.5000000000, 0.3000000000]);
										}
									}
									union();
								}
							}
						}
						#translate(v = [0, 0, -9.0000000000]) {
							cylinder(h = 9, r = 1.5000000000);
						}
						#translate(v = [0, 0, -1.9000000000]) {
							cylinder(h = 1.9000000000, r1 = 1.8000000000, r2 = 3.6000000000);
						}
						#translate(v = [0, 0, -9.0000000000]) {
							cylinder(h = 9, r = 1.8000000000);
						}
						#translate(v = [0, 0, -9.0000000000]) {
							cylinder(h = 9, r = 1.5000000000);
						}
					}
					union();
				}
			}
		}
		#translate(v = [-12.0000000000, -45.0000000000, 7.0000000000]) {
			rotate(a = [0, 90, 0]) {
				cylinder(h = 24, r = 3.2500000000);
			}
		}
		#translate(v = [-12.0000000000, 45.0000000000, 7.0000000000]) {
			rotate(a = [0, 90, 0]) {
				cylinder(h = 24, r = 3.2500000000);
			}
		}
	}
}
